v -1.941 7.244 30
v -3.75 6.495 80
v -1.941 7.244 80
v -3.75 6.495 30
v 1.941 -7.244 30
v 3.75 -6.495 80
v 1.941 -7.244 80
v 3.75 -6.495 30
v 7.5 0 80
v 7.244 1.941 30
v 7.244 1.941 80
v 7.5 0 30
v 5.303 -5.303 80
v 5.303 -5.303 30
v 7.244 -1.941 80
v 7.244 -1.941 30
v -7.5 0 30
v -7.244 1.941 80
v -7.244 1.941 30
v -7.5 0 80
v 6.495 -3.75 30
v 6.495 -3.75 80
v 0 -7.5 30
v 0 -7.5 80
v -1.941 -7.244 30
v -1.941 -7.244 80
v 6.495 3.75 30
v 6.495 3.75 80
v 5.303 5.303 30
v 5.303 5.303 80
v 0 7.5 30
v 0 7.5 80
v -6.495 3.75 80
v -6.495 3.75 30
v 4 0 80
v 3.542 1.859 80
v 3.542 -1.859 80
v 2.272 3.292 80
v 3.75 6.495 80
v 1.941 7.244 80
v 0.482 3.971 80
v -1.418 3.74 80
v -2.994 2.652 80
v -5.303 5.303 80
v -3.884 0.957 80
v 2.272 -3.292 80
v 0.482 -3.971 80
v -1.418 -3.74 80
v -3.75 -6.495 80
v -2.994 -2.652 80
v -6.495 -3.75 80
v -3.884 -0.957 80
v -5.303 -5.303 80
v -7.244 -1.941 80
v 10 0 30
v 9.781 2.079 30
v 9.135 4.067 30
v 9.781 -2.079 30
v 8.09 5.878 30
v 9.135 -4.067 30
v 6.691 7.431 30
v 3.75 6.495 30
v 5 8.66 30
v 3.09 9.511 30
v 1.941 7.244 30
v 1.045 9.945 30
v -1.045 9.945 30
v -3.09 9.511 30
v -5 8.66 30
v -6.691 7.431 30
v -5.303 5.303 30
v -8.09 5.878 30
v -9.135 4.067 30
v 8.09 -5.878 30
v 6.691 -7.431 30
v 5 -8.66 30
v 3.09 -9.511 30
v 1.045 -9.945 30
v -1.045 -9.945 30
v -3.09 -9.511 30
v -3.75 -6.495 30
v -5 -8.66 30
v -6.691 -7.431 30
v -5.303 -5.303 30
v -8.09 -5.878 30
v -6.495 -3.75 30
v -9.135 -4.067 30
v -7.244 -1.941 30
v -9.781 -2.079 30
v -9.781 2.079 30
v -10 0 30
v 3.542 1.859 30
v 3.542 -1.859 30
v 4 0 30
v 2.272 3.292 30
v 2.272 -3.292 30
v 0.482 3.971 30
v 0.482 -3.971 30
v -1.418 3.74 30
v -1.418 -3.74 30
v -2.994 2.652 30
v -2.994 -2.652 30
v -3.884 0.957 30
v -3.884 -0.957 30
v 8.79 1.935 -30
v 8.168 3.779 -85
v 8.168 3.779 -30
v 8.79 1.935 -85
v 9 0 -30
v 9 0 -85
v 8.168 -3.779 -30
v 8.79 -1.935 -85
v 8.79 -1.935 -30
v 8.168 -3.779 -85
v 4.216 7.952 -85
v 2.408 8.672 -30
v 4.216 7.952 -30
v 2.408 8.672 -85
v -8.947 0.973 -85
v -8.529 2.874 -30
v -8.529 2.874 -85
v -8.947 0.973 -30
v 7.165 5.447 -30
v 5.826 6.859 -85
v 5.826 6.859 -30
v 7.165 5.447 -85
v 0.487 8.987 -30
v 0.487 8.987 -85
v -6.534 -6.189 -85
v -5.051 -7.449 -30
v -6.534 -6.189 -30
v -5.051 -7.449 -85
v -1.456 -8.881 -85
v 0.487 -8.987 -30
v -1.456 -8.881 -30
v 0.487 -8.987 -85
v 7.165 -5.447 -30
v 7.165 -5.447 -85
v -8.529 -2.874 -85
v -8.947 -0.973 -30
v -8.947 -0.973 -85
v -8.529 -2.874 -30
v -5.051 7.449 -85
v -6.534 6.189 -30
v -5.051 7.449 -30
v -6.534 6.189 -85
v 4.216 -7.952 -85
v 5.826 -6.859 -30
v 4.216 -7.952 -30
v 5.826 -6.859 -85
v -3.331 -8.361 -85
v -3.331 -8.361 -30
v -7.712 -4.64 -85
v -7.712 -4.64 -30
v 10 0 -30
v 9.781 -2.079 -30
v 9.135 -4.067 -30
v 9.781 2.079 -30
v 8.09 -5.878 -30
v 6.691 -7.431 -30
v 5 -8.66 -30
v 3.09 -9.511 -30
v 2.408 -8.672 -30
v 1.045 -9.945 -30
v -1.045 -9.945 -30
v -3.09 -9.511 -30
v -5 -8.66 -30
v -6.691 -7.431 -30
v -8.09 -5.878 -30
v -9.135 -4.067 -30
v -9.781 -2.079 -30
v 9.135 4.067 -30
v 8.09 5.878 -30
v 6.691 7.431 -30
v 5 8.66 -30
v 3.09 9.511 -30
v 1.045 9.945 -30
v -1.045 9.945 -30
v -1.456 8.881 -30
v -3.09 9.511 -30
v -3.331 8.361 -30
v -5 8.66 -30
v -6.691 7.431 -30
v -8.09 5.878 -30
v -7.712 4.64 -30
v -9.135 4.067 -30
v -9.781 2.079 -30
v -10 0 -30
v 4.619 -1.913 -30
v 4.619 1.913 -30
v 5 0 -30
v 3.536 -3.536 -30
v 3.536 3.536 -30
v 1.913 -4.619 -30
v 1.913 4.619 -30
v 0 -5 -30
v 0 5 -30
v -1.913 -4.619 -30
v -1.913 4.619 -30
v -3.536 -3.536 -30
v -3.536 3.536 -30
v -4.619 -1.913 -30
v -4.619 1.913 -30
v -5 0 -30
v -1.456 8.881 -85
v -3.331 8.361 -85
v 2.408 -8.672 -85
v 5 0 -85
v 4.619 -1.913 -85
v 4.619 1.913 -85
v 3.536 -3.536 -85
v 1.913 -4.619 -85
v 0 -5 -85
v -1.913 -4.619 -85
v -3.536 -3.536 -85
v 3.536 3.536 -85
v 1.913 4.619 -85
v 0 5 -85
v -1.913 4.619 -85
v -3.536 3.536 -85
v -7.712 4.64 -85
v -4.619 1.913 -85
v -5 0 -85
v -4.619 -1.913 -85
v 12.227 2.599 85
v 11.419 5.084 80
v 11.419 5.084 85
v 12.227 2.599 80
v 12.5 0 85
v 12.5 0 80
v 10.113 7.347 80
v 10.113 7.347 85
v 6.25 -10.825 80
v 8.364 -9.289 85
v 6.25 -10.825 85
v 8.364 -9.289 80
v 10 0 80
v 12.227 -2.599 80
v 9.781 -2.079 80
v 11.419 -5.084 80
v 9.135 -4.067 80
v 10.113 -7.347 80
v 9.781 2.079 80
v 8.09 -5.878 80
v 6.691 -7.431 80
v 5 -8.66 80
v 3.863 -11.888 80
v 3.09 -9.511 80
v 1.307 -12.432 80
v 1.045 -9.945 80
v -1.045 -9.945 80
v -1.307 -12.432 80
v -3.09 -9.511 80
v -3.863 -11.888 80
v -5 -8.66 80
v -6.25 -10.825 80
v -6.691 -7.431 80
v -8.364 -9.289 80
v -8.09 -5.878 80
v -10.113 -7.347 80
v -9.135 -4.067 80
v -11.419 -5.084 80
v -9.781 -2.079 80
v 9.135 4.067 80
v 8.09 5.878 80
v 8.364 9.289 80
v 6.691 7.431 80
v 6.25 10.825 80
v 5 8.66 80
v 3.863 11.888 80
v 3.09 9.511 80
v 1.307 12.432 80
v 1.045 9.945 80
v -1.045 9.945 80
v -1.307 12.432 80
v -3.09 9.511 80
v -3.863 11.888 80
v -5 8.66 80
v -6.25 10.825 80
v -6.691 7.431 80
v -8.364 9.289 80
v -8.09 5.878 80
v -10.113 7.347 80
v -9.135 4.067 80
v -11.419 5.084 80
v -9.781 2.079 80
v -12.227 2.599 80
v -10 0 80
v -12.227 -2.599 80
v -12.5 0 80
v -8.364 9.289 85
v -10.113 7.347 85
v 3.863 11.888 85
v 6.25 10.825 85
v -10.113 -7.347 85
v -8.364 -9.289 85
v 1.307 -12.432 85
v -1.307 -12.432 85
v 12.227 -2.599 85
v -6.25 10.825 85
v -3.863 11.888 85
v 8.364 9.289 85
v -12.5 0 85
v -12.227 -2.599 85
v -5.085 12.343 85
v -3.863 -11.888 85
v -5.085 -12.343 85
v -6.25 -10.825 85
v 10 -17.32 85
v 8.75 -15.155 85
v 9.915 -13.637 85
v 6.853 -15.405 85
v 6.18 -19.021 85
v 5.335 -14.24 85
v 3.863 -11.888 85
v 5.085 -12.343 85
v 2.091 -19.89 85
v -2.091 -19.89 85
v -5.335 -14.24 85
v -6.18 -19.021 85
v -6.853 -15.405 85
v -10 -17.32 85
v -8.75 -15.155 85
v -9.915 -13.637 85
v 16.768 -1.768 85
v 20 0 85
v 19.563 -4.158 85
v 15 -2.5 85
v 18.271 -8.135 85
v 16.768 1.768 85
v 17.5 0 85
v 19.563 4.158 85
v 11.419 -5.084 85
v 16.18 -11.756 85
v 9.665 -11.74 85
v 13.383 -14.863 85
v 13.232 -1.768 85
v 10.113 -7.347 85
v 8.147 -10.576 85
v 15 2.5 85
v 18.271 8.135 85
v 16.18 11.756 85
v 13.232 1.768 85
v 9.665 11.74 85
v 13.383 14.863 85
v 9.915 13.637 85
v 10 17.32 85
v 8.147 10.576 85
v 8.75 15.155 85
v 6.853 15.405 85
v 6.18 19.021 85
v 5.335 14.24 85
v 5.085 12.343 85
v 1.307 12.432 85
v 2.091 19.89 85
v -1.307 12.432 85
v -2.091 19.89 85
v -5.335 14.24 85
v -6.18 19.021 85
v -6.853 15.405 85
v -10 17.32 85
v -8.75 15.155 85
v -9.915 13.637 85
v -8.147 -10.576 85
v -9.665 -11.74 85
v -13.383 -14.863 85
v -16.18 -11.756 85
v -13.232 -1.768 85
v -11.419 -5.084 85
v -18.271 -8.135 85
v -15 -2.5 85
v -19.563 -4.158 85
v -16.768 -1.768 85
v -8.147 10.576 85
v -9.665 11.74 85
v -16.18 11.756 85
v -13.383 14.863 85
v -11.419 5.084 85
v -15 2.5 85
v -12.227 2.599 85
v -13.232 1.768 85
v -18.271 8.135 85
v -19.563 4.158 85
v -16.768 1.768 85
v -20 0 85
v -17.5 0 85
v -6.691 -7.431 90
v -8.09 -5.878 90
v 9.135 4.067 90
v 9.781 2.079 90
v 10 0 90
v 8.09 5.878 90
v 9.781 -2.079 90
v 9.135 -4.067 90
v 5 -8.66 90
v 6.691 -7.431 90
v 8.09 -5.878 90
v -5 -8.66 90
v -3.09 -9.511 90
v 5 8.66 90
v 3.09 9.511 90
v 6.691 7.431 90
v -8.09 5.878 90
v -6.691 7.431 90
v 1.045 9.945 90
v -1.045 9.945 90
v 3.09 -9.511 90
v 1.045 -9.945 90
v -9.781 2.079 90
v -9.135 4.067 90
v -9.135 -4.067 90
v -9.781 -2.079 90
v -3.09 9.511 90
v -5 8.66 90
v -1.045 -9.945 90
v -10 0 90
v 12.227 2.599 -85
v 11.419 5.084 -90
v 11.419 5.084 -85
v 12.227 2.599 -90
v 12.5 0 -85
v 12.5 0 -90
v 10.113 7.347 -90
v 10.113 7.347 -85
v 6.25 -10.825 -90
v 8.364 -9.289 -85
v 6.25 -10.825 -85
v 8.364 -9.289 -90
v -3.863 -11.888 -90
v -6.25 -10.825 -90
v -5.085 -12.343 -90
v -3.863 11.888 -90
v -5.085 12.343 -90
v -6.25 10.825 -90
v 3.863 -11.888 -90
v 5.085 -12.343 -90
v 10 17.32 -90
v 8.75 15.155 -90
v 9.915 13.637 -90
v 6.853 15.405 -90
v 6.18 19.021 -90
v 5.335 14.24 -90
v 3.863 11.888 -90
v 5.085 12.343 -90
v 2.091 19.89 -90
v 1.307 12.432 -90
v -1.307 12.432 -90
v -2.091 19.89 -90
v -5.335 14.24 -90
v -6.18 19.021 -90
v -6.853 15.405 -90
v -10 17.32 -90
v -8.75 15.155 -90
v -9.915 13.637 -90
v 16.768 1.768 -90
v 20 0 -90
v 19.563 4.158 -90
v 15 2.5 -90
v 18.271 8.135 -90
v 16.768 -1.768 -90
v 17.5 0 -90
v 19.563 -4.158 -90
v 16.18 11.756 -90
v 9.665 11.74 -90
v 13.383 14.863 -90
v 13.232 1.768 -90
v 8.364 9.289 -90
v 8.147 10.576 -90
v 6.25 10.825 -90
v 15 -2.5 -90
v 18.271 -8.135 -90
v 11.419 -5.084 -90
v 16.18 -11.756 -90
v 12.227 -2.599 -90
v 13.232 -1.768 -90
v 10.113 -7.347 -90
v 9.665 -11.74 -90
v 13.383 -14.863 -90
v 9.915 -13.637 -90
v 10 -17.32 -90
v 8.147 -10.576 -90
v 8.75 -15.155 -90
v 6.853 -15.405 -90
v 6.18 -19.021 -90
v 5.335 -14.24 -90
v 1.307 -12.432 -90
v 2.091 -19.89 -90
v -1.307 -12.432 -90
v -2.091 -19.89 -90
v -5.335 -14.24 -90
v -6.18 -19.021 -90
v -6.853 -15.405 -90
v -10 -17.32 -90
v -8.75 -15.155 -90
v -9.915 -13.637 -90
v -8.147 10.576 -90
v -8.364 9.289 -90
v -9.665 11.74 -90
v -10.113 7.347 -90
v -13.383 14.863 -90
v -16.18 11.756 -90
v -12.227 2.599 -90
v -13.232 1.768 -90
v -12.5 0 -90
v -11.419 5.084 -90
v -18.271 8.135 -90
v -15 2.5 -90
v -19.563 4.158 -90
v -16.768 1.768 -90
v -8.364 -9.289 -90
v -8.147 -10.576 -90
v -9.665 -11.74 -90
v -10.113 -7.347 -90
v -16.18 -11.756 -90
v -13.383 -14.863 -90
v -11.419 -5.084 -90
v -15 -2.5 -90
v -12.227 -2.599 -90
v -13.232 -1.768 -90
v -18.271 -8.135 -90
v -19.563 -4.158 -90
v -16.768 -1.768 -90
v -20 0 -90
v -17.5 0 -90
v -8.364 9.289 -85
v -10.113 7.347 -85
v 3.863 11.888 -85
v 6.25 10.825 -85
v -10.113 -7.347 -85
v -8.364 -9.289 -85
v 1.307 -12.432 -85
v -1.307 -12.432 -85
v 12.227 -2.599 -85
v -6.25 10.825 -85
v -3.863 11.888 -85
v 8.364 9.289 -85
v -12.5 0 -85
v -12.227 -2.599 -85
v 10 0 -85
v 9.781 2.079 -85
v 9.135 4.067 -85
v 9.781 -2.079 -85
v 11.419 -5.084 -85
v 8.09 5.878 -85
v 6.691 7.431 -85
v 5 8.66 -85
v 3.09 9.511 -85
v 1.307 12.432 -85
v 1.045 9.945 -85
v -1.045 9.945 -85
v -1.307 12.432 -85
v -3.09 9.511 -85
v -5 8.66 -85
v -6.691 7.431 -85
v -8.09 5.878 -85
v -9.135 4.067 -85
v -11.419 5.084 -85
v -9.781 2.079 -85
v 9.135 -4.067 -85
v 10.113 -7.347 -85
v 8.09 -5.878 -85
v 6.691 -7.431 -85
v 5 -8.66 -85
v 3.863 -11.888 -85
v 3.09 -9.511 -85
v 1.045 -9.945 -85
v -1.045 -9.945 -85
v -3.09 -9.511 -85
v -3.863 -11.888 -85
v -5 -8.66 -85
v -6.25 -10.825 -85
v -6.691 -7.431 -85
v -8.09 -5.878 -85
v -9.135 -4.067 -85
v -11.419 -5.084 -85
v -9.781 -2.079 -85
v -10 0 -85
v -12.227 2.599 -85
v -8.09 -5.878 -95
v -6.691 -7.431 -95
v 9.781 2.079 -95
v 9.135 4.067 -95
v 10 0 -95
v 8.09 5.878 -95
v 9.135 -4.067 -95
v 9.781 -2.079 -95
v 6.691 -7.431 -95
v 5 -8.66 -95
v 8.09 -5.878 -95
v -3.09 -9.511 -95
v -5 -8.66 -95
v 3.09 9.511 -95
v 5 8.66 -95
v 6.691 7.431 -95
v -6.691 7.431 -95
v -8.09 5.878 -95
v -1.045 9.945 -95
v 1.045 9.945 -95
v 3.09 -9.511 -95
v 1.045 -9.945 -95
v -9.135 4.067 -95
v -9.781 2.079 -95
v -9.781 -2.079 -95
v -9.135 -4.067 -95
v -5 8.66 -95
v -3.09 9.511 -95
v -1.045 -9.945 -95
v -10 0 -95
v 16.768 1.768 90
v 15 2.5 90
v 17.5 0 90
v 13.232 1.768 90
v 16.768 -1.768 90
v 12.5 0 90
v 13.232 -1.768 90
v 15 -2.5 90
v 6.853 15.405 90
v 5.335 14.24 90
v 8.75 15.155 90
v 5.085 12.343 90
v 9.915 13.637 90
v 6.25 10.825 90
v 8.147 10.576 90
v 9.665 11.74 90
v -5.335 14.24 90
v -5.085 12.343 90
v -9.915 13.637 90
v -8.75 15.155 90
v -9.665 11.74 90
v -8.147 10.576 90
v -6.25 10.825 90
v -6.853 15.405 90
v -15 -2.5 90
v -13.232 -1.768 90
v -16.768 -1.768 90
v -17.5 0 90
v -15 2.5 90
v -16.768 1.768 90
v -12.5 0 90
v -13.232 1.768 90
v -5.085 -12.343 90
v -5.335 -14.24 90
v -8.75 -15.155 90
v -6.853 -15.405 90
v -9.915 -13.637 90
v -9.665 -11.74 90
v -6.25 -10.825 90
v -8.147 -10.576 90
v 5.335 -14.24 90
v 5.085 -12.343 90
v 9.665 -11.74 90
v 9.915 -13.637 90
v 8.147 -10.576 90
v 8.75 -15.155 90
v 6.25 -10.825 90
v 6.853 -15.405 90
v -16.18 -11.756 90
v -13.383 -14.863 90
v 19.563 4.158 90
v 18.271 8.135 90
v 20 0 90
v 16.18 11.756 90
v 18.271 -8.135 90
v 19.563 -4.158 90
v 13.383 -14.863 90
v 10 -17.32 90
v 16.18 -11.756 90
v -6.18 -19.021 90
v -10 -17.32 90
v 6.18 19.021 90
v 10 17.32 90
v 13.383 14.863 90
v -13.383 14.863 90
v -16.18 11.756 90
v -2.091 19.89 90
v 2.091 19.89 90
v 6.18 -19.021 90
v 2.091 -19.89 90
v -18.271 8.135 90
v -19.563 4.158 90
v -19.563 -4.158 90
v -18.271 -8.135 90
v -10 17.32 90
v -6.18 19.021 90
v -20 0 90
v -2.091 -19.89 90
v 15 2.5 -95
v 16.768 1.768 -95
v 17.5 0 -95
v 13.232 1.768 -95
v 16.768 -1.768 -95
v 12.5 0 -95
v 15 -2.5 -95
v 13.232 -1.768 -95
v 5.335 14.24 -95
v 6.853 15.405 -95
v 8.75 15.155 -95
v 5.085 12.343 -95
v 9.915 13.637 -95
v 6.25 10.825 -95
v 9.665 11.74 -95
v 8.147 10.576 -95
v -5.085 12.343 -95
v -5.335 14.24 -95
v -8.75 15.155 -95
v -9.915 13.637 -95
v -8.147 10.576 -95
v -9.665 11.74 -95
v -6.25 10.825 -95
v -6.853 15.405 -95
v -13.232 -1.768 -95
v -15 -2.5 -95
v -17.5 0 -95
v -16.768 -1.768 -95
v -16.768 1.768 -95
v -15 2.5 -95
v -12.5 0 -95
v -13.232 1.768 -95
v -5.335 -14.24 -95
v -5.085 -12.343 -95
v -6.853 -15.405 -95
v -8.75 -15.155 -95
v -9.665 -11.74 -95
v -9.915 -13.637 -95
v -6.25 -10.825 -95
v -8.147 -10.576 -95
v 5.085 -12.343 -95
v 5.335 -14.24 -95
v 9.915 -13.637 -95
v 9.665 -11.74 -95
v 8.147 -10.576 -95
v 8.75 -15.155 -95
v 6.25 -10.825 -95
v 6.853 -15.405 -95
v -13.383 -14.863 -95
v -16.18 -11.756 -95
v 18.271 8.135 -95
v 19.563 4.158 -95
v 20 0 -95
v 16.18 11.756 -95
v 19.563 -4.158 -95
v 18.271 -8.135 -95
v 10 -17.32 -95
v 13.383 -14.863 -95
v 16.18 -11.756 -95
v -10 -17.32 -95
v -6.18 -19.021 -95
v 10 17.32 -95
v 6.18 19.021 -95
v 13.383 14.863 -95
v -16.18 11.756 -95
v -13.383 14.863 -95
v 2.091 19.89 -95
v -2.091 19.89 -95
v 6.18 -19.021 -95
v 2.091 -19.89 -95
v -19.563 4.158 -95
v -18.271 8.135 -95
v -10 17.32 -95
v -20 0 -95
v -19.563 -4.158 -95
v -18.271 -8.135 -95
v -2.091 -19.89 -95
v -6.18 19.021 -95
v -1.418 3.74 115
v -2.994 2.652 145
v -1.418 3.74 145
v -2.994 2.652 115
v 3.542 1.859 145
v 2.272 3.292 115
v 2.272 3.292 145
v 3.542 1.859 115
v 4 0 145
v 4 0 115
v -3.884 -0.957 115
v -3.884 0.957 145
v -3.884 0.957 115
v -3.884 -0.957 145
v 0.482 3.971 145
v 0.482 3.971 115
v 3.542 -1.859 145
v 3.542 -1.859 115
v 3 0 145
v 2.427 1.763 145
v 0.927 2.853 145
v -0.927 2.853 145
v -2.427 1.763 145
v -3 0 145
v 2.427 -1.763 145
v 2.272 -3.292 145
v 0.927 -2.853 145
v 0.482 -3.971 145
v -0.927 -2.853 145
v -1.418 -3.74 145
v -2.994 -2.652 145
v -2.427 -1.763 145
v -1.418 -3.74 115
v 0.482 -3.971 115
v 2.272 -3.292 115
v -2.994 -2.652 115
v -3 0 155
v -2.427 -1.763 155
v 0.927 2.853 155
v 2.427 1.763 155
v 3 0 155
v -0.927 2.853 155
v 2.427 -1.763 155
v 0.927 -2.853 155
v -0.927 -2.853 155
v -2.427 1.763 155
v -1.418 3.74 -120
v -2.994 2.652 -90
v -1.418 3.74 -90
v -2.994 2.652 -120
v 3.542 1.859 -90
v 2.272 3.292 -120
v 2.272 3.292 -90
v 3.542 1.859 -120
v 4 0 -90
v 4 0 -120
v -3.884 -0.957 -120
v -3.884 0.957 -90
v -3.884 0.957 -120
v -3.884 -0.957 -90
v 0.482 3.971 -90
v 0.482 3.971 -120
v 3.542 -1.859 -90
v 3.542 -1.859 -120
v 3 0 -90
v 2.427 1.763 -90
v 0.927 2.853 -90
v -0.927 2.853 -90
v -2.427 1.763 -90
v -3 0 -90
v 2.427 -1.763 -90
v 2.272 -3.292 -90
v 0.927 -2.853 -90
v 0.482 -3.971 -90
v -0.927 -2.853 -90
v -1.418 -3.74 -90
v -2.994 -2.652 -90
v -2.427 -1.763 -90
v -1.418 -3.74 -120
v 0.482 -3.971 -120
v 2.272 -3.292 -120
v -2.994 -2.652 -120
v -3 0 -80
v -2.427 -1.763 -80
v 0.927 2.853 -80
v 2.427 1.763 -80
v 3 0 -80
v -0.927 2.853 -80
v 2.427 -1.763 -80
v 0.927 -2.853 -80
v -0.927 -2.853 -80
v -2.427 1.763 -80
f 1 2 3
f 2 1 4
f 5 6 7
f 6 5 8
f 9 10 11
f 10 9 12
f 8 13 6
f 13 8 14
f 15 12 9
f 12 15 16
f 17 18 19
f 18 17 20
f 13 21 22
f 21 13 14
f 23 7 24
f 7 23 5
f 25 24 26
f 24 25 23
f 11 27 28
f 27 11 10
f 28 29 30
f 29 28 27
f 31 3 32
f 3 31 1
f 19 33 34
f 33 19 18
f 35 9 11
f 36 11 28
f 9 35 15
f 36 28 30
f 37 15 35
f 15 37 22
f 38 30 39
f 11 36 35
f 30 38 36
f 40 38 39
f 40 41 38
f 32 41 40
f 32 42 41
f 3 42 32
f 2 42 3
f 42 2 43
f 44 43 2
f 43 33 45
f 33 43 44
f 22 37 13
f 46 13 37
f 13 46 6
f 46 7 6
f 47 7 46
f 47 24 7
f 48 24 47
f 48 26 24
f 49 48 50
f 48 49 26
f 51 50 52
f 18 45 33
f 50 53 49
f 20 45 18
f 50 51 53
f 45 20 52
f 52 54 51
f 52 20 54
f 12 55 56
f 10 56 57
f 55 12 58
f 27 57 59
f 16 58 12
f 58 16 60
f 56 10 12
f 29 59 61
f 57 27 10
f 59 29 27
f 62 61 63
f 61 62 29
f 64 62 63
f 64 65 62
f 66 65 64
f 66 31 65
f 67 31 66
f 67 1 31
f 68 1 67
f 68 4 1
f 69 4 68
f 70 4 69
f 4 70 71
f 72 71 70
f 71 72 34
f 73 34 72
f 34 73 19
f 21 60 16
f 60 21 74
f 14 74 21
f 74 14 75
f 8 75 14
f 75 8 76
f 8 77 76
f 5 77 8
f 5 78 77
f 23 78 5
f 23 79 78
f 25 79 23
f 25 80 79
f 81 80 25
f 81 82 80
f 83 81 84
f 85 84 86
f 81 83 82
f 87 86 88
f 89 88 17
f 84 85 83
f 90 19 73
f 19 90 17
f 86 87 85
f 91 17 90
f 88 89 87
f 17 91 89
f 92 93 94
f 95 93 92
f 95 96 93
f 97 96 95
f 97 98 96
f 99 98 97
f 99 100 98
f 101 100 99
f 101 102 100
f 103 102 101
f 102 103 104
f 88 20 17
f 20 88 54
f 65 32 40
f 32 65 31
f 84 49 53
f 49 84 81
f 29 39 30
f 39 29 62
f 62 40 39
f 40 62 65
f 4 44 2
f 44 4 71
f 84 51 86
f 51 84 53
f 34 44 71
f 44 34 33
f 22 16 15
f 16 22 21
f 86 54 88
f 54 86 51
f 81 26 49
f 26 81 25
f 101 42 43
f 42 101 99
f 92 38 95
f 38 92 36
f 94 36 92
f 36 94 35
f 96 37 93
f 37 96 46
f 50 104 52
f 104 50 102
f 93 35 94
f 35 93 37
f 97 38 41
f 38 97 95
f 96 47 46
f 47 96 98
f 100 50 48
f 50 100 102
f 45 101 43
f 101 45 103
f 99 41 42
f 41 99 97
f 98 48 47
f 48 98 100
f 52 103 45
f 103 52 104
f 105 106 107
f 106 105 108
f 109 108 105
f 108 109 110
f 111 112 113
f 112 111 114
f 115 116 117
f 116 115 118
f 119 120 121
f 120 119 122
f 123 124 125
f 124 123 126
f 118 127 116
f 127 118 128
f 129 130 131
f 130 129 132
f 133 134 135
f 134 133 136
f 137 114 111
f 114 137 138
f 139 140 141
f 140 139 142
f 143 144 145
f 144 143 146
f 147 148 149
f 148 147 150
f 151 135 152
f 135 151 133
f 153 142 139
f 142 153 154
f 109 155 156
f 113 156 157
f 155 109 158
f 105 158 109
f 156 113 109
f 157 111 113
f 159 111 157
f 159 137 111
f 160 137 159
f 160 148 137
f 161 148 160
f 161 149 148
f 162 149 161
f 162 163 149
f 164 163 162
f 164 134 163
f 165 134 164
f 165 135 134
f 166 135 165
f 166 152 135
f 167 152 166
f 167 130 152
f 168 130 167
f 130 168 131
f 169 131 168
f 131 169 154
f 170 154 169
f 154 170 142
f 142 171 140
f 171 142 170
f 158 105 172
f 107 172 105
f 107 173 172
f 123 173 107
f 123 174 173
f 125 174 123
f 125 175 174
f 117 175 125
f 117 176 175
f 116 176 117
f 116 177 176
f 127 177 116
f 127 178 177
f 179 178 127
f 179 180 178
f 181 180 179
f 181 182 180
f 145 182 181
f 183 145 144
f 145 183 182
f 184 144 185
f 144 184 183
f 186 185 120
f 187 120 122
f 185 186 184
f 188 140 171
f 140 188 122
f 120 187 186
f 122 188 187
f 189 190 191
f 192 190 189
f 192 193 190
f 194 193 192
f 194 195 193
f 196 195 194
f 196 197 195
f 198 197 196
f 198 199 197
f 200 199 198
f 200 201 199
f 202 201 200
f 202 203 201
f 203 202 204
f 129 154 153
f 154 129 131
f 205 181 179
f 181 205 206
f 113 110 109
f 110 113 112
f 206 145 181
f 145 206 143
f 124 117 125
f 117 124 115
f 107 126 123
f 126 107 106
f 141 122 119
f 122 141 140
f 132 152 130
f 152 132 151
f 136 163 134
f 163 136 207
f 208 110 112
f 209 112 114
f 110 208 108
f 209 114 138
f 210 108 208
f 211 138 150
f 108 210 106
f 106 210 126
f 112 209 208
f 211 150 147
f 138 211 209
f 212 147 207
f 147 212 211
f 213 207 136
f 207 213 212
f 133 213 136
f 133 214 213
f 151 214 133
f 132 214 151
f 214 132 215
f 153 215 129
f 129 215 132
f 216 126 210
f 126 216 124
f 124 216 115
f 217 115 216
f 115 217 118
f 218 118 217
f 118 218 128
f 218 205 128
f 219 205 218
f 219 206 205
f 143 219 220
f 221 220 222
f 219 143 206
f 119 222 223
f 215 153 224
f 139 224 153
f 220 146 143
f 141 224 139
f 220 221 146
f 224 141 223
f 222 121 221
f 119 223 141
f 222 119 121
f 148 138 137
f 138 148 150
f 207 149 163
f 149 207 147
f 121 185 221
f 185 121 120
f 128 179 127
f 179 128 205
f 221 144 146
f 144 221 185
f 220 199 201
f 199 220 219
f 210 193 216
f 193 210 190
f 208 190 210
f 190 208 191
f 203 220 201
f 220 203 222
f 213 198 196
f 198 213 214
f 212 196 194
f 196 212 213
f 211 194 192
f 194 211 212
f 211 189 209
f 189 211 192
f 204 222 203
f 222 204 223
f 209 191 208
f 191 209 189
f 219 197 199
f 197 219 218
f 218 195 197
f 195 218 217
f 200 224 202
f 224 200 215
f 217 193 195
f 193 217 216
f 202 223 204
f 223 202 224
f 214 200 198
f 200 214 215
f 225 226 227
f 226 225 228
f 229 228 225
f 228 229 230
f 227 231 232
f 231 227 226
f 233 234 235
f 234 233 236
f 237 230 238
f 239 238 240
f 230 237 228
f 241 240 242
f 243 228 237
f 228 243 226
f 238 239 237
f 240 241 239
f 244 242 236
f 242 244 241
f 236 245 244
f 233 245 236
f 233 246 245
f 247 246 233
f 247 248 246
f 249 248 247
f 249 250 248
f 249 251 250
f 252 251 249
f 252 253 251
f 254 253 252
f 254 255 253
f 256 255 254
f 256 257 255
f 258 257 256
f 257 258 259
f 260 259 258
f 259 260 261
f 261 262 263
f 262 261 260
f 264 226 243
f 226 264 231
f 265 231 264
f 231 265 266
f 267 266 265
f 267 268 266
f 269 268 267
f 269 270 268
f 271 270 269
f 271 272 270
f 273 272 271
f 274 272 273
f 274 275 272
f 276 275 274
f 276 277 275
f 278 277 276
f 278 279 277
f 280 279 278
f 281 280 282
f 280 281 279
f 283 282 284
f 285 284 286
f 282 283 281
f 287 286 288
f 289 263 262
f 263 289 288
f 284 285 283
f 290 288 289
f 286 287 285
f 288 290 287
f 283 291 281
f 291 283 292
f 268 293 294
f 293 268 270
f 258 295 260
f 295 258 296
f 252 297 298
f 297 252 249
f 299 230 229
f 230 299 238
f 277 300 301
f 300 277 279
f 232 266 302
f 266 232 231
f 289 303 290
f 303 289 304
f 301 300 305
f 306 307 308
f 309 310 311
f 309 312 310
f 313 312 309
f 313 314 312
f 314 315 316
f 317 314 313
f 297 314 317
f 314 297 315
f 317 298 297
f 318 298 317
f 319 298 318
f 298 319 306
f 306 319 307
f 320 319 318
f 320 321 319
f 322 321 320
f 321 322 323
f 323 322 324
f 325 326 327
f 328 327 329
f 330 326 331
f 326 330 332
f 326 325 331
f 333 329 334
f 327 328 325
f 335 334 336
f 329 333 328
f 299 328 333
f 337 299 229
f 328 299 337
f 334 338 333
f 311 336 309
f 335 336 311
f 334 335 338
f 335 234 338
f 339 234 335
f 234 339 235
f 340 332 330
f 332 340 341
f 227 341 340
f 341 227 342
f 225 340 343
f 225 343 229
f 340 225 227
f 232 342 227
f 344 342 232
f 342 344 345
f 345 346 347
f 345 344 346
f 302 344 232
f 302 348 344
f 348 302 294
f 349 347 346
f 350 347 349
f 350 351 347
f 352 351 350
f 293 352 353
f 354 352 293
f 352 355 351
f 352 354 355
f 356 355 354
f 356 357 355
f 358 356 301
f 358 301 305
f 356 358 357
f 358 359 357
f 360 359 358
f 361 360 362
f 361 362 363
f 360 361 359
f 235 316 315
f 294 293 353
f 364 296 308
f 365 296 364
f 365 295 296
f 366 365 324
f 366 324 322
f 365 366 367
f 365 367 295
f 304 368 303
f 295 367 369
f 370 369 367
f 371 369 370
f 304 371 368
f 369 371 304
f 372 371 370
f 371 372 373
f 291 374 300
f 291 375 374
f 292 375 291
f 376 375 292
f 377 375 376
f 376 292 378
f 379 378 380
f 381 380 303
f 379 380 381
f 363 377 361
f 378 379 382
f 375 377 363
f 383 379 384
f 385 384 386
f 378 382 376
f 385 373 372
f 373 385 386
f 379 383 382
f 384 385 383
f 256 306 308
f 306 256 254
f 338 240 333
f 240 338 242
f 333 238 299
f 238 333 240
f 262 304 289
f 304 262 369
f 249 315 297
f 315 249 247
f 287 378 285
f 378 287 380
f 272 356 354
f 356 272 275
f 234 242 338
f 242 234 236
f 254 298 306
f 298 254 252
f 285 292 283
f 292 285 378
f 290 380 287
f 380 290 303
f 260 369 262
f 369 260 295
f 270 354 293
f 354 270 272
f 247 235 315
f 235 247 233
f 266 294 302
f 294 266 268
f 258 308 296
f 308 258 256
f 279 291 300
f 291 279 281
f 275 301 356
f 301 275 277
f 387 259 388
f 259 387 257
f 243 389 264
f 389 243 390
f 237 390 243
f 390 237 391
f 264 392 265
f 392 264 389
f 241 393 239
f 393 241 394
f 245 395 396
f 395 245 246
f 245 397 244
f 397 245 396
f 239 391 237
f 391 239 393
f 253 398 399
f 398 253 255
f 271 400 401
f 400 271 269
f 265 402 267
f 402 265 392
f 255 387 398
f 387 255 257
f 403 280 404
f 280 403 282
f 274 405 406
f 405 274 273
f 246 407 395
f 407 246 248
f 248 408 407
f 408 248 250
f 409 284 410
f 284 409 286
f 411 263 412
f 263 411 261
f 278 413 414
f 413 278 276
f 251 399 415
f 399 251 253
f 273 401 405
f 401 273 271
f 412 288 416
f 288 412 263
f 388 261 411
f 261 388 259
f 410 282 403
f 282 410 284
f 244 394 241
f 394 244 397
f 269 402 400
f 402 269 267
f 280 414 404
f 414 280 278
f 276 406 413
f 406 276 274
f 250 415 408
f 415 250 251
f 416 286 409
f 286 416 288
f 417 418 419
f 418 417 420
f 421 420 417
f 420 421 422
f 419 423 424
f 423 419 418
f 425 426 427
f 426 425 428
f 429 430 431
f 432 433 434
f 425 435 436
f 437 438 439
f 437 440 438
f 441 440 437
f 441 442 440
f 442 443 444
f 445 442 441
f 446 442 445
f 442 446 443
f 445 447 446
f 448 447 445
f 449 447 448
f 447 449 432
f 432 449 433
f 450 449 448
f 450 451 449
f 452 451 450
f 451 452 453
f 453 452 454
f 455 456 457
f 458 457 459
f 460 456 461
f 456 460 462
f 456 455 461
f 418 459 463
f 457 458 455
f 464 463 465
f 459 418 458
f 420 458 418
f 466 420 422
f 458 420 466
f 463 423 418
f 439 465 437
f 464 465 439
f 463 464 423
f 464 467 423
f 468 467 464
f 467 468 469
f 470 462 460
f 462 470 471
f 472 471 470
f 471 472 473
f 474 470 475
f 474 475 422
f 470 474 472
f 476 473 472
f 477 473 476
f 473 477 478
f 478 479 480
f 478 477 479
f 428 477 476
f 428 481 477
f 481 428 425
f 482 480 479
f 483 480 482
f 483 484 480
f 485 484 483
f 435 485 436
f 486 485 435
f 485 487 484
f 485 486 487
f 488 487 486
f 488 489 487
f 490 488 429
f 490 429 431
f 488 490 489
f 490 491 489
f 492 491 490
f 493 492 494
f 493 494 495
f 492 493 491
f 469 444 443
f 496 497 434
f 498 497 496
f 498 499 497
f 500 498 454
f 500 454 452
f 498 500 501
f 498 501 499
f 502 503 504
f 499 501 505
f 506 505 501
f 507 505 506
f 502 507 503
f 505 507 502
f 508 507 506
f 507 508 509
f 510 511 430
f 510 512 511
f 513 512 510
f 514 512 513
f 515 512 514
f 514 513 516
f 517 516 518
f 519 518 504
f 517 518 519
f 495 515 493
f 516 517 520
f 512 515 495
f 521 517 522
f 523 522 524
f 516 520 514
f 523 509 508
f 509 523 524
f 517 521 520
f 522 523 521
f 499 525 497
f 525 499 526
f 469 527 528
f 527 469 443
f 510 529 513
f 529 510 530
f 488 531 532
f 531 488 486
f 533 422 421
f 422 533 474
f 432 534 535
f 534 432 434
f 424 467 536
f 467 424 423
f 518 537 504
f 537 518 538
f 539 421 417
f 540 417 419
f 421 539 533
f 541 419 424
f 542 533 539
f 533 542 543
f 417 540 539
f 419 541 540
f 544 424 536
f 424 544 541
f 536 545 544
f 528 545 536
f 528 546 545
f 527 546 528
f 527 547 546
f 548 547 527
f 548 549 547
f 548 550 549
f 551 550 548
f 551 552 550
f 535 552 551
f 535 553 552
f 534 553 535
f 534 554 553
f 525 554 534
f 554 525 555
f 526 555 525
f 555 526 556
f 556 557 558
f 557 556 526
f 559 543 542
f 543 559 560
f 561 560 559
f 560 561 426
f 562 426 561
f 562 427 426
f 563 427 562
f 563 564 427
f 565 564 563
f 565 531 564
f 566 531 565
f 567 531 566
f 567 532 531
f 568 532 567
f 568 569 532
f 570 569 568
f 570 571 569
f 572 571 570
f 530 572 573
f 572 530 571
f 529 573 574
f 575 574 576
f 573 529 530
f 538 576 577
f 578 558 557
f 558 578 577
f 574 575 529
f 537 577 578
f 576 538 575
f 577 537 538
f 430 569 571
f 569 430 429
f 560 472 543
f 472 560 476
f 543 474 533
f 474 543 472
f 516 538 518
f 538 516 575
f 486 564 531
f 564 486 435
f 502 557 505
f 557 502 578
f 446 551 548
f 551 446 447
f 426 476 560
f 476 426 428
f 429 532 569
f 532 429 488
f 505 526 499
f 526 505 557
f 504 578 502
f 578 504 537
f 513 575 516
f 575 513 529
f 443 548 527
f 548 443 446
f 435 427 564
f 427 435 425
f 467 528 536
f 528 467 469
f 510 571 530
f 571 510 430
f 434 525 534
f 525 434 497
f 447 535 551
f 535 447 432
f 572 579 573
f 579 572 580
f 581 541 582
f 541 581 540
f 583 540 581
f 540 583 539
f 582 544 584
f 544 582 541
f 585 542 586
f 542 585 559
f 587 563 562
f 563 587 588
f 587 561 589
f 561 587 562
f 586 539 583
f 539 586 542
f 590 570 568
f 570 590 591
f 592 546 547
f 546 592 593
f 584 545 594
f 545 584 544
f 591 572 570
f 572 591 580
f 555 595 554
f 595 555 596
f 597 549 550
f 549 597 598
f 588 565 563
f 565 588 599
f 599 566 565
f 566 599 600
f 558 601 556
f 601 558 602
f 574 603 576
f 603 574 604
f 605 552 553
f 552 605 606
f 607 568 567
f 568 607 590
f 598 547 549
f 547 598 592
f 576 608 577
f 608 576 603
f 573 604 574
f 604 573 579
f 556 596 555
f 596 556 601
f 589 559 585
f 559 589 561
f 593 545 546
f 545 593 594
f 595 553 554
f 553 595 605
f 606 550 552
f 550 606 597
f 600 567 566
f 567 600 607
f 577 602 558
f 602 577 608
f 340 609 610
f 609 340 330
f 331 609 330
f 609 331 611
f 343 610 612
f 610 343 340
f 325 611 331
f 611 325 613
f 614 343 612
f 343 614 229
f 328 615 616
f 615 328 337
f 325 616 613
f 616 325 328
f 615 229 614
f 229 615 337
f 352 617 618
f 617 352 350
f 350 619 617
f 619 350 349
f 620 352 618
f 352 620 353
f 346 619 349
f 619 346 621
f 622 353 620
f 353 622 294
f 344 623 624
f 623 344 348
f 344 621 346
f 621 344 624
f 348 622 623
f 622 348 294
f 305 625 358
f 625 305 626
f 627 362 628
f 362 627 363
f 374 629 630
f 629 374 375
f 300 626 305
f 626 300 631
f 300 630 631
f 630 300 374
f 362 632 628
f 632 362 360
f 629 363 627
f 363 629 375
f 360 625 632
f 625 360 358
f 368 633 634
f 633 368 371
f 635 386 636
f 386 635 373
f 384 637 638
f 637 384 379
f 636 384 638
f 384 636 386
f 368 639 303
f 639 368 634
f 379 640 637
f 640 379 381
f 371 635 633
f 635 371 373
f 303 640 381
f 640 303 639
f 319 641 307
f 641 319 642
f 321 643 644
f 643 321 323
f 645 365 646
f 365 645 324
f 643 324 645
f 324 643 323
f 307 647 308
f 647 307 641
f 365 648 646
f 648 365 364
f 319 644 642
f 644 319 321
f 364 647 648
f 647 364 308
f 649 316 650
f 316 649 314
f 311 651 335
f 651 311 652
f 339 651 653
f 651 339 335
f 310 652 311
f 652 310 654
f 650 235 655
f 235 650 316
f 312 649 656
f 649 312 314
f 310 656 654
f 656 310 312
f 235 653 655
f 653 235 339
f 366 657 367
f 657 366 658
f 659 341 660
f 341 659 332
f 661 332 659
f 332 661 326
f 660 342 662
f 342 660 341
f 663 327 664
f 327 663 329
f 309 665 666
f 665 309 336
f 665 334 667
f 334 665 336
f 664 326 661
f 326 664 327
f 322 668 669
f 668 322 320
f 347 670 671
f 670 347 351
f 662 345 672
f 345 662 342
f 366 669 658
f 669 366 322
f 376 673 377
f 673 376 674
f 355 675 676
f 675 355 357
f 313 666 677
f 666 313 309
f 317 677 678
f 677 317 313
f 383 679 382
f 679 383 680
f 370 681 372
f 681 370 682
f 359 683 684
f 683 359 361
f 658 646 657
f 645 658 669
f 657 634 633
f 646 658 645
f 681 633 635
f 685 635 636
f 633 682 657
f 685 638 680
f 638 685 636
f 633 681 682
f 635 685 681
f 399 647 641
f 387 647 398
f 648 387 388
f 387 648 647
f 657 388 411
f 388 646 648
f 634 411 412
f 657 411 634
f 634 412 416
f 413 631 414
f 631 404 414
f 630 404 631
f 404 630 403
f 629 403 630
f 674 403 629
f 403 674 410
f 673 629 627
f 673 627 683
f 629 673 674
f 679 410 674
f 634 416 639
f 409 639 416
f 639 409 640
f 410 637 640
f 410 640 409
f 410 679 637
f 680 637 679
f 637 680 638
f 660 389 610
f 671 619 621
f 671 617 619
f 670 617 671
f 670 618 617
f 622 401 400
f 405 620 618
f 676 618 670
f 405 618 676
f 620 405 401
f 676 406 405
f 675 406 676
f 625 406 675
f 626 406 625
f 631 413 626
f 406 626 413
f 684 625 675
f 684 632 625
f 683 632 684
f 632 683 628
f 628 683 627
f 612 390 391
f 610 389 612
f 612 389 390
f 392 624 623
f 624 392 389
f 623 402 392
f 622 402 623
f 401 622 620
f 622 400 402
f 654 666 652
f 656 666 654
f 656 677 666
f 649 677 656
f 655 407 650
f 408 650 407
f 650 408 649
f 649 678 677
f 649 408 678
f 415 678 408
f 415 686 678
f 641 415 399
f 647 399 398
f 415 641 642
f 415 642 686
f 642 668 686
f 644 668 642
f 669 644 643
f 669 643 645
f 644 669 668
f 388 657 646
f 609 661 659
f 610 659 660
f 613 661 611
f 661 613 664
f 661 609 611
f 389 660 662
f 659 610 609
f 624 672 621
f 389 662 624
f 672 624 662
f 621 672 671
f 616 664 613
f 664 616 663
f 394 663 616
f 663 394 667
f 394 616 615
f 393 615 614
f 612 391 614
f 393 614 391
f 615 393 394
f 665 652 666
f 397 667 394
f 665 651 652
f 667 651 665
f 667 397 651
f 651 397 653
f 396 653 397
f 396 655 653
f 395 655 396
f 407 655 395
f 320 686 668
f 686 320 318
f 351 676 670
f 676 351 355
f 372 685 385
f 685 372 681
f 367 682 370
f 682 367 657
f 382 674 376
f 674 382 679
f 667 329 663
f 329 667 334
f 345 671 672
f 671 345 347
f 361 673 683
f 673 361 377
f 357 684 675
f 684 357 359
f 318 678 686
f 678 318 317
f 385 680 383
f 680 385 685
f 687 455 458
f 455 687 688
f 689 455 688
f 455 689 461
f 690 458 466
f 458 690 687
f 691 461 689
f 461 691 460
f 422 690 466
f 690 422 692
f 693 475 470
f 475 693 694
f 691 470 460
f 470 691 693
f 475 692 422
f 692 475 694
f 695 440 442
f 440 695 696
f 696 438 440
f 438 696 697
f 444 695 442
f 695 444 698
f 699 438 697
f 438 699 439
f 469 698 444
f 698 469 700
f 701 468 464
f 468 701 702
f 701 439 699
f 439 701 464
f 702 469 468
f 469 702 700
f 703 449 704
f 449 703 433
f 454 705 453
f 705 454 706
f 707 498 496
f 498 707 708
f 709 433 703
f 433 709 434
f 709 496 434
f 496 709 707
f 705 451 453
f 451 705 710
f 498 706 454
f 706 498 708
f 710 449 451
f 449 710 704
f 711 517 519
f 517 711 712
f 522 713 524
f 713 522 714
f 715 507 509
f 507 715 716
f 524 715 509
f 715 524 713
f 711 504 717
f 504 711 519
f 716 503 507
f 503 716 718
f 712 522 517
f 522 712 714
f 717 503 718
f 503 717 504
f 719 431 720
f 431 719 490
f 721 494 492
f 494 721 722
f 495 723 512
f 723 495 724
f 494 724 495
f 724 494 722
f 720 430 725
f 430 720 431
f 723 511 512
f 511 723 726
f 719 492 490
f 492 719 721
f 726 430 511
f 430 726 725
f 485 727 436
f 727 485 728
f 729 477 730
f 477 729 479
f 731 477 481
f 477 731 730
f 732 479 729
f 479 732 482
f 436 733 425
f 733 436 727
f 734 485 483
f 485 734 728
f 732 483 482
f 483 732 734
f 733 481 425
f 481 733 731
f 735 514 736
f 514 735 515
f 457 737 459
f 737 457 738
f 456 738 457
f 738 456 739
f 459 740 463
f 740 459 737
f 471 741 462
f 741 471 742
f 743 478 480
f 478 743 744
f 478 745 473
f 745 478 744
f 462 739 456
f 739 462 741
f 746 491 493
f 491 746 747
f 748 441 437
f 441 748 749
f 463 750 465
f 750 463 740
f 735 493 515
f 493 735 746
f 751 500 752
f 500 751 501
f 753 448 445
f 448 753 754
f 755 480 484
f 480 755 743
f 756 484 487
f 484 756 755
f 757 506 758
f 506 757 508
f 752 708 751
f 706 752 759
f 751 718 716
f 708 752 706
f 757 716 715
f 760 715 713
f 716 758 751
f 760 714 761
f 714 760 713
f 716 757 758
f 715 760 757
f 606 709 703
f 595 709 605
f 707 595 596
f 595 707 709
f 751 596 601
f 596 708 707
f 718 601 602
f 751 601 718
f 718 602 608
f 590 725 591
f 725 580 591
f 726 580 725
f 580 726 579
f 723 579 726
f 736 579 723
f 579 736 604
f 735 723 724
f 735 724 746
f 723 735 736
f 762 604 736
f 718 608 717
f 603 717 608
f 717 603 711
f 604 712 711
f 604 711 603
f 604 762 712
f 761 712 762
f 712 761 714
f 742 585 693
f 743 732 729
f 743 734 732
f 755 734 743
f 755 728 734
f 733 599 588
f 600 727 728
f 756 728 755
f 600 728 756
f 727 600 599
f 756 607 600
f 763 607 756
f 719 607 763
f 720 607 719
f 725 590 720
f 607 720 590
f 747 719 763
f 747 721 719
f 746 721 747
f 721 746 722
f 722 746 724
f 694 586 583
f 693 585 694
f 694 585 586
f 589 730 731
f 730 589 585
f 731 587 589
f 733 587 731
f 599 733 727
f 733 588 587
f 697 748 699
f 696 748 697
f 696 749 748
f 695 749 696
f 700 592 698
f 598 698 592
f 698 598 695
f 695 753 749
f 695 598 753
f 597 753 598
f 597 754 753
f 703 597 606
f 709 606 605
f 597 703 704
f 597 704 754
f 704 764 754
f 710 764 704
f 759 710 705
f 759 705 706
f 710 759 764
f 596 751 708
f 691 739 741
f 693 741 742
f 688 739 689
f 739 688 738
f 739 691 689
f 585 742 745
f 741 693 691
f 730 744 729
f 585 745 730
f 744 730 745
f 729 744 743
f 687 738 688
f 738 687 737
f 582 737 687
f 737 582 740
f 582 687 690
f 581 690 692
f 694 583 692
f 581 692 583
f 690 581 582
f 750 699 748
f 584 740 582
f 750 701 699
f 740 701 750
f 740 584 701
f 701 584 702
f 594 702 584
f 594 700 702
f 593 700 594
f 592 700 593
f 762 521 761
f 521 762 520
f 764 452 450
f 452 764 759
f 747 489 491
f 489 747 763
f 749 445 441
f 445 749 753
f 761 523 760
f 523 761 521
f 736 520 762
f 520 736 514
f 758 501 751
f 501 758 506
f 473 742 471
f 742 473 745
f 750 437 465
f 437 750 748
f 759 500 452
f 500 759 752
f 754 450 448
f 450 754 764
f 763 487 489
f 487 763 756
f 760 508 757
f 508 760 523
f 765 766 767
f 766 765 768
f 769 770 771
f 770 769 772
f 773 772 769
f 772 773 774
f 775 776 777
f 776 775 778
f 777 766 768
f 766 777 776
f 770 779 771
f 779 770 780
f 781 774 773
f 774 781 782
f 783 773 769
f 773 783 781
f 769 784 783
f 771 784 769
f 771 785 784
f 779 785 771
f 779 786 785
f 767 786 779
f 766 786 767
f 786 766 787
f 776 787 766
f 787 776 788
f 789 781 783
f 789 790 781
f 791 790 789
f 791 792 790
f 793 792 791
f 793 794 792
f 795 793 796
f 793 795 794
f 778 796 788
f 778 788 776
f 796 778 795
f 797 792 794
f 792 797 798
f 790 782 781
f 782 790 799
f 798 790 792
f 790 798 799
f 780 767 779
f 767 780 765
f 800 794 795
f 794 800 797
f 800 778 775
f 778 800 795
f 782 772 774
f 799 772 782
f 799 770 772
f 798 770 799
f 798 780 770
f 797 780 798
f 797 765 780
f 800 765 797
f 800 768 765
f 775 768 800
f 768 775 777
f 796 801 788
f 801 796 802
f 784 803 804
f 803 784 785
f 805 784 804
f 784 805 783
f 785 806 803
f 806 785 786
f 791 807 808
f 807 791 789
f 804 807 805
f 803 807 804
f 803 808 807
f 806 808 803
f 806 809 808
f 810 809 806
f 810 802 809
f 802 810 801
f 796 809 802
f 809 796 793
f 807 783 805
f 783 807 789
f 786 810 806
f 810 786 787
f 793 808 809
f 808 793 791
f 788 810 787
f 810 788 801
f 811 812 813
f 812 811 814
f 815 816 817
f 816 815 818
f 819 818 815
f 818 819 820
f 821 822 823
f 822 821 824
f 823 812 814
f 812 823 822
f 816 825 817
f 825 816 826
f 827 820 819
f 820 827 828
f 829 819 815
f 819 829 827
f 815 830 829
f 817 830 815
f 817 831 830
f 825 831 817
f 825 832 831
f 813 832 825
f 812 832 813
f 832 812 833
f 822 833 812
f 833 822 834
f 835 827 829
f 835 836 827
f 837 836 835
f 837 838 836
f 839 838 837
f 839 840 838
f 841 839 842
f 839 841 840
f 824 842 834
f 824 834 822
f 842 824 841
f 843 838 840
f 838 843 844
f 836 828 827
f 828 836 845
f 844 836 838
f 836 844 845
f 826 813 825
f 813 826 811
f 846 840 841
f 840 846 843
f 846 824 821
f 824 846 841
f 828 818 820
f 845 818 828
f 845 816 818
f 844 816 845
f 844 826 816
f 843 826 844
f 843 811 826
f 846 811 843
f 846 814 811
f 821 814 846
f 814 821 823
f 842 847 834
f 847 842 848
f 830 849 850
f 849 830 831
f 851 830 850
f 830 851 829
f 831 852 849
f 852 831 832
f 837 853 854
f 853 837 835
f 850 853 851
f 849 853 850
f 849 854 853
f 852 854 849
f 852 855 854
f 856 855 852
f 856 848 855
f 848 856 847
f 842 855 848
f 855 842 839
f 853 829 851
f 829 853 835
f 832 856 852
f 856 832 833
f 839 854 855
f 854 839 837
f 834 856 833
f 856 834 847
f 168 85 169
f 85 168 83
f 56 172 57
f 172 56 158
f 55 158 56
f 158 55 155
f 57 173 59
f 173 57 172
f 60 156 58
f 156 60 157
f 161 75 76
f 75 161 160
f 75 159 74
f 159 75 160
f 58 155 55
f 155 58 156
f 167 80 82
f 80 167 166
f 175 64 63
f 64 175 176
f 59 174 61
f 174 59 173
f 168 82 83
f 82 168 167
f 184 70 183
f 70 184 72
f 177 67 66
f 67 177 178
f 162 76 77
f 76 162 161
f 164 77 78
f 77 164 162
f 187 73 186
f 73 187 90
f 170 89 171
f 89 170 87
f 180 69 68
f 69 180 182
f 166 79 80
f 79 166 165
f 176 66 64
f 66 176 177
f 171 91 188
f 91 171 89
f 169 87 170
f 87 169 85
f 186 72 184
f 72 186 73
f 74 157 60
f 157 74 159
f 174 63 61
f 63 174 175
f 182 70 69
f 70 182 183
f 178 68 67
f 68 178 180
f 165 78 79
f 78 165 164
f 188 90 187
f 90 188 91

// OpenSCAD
// Parameters for the central shaft
shaft_diameter = 20; // Diameter of the central shaft
shaft_length = 60;   // Length of the central shaft

// Central Shaft
module central_shaft() {
    // Modified to ensure a uniform cylindrical shape
    cylinder(d=shaft_diameter, h=shaft_length, center=true);
}

// Parameters for the input shaft
input_shaft_diameter = 15; // Diameter of the input shaft
input_shaft_length = 50;   // Length of the input shaft
input_shaft_hole_diameter = 8; // Diameter of the hollow center

// Input Shaft
module input_shaft() {
    // Modified to remove tapering and add a hollow center
    difference() {
        cylinder(d=input_shaft_diameter, h=input_shaft_length, center=true);
        translate([0, 0, -input_shaft_length/2])
            cylinder(d=input_shaft_hole_diameter, h=input_shaft_length, center=false);
    }
}

// Parameters for the output shaft
output_shaft_diameter = 18; // Diameter of the output shaft
output_shaft_length = 55;   // Length of the output shaft
output_shaft_hole_diameter = 10; // Diameter of the hollow center

// Output Shaft
module output_shaft() {
    // Modified to remove tapering and add a hollow center
    difference() {
        cylinder(d=output_shaft_diameter, h=output_shaft_length, center=true);
        translate([0, 0, -output_shaft_length/2])
            cylinder(d=output_shaft_hole_diameter, h=output_shaft_length, center=false);
    }
}

// Parameters for the spacer ring
spacer_ring_outer_diameter = 25; // Outer diameter of the spacer ring
spacer_ring_inner_diameter = 20; // Inner diameter of the spacer ring
spacer_ring_thickness = 5;       // Thickness of the spacer ring

// Spacer Ring
module spacer_ring() {
    // Modified to ensure flat, thin ring shape
    difference() {
        cylinder(d=spacer_ring_outer_diameter, h=spacer_ring_thickness, center=true);
        cylinder(d=spacer_ring_inner_diameter, h=spacer_ring_thickness + 1, center=true);
    }
}

// Parameters for the flange plate
flange_plate_outer_diameter = 40; // Outer diameter of the flange plate
flange_plate_inner_diameter = 20; // Inner diameter of the flange plate
flange_plate_thickness = 5;       // Thickness of the flange plate
bolt_hole_diameter = 5;           // Diameter of the bolt holes
bolt_hole_count = 6;              // Number of bolt holes

// Flange Plate
module flange_plate() {
    // Modified to ensure flat, hollow cylindrical plate with evenly distributed bolt holes
    difference() {
        cylinder(d=flange_plate_outer_diameter, h=flange_plate_thickness, center=true);
        cylinder(d=flange_plate_inner_diameter, h=flange_plate_thickness + 1, center=true);
        for (i = [0:360/bolt_hole_count:360-360/bolt_hole_count]) {
            rotate([0, 0, i])
                translate([flange_plate_outer_diameter/2 - 5, 0, 0])
                    cylinder(d=bolt_hole_diameter, h=flange_plate_thickness + 1, center=true);
        }
    }
}

// Parameters for the nut
nut_diameter = 10; // Diameter of the nut
nut_thickness = 5; // Thickness of the nut

// Nut
module nut() {
    // Modified to ensure hexagonal shape
    rotate([0, 0, 30])
        linear_extrude(height=nut_thickness)
            polygon(points=[[0, nut_diameter/2], [nut_diameter/2 * cos(PI/3), nut_diameter/2 * sin(PI/3)], 
                            [nut_diameter/2 * cos(2*PI/3), nut_diameter/2 * sin(2*PI/3)], 
                            [0, -nut_diameter/2], 
                            [-nut_diameter/2 * cos(PI/3), -nut_diameter/2 * sin(PI/3)], 
                            [-nut_diameter/2 * cos(2*PI/3), -nut_diameter/2 * sin(2*PI/3)]]);
}

// Parameters for the bolt
bolt_diameter = 8; // Diameter of the bolt
bolt_length = 40;  // Length of the bolt
bolt_thread_diameter = 6; // Diameter of the threaded part

// Bolt
module bolt() {
    // Modified to ensure slender cylindrical design with external threading
    union() {
        cylinder(d=bolt_diameter, h=bolt_length - 10, center=false);
        translate([0, 0, bolt_length - 10])
            cylinder(d=bolt_thread_diameter, h=10, center=false);
    }
}

// Render the components
translate([0, 0, 0]) {
    central_shaft();
    translate([0, 0, shaft_length/2 + input_shaft_length/2]) input_shaft();
    translate([0, 0, -shaft_length/2 - output_shaft_length/2]) output_shaft();
    translate([0, 0, shaft_length/2 + input_shaft_length + spacer_ring_thickness/2]) spacer_ring();
    translate([0, 0, -shaft_length/2 - output_shaft_length - spacer_ring_thickness/2]) spacer_ring();
    translate([0, 0, shaft_length/2 + input_shaft_length + spacer_ring_thickness + flange_plate_thickness/2]) flange_plate();
    translate([0, 0, -shaft_length/2 - output_shaft_length - spacer_ring_thickness - flange_plate_thickness/2]) flange_plate();
    translate([0, 0, shaft_length/2 + input_shaft_length + spacer_ring_thickness + flange_plate_thickness + nut_thickness/2]) nut();
    translate([0, 0, -shaft_length/2 - output_shaft_length - spacer_ring_thickness - flange_plate_thickness - nut_thickness/2]) nut();
    translate([0, 0, shaft_length/2 + input_shaft_length + spacer_ring_thickness + flange_plate_thickness + nut_thickness + bolt_length/2]) bolt();
    translate([0, 0, -shaft_length/2 - output_shaft_length - spacer_ring_thickness - flange_plate_thickness - nut_thickness - bolt_length/2]) bolt();
}
